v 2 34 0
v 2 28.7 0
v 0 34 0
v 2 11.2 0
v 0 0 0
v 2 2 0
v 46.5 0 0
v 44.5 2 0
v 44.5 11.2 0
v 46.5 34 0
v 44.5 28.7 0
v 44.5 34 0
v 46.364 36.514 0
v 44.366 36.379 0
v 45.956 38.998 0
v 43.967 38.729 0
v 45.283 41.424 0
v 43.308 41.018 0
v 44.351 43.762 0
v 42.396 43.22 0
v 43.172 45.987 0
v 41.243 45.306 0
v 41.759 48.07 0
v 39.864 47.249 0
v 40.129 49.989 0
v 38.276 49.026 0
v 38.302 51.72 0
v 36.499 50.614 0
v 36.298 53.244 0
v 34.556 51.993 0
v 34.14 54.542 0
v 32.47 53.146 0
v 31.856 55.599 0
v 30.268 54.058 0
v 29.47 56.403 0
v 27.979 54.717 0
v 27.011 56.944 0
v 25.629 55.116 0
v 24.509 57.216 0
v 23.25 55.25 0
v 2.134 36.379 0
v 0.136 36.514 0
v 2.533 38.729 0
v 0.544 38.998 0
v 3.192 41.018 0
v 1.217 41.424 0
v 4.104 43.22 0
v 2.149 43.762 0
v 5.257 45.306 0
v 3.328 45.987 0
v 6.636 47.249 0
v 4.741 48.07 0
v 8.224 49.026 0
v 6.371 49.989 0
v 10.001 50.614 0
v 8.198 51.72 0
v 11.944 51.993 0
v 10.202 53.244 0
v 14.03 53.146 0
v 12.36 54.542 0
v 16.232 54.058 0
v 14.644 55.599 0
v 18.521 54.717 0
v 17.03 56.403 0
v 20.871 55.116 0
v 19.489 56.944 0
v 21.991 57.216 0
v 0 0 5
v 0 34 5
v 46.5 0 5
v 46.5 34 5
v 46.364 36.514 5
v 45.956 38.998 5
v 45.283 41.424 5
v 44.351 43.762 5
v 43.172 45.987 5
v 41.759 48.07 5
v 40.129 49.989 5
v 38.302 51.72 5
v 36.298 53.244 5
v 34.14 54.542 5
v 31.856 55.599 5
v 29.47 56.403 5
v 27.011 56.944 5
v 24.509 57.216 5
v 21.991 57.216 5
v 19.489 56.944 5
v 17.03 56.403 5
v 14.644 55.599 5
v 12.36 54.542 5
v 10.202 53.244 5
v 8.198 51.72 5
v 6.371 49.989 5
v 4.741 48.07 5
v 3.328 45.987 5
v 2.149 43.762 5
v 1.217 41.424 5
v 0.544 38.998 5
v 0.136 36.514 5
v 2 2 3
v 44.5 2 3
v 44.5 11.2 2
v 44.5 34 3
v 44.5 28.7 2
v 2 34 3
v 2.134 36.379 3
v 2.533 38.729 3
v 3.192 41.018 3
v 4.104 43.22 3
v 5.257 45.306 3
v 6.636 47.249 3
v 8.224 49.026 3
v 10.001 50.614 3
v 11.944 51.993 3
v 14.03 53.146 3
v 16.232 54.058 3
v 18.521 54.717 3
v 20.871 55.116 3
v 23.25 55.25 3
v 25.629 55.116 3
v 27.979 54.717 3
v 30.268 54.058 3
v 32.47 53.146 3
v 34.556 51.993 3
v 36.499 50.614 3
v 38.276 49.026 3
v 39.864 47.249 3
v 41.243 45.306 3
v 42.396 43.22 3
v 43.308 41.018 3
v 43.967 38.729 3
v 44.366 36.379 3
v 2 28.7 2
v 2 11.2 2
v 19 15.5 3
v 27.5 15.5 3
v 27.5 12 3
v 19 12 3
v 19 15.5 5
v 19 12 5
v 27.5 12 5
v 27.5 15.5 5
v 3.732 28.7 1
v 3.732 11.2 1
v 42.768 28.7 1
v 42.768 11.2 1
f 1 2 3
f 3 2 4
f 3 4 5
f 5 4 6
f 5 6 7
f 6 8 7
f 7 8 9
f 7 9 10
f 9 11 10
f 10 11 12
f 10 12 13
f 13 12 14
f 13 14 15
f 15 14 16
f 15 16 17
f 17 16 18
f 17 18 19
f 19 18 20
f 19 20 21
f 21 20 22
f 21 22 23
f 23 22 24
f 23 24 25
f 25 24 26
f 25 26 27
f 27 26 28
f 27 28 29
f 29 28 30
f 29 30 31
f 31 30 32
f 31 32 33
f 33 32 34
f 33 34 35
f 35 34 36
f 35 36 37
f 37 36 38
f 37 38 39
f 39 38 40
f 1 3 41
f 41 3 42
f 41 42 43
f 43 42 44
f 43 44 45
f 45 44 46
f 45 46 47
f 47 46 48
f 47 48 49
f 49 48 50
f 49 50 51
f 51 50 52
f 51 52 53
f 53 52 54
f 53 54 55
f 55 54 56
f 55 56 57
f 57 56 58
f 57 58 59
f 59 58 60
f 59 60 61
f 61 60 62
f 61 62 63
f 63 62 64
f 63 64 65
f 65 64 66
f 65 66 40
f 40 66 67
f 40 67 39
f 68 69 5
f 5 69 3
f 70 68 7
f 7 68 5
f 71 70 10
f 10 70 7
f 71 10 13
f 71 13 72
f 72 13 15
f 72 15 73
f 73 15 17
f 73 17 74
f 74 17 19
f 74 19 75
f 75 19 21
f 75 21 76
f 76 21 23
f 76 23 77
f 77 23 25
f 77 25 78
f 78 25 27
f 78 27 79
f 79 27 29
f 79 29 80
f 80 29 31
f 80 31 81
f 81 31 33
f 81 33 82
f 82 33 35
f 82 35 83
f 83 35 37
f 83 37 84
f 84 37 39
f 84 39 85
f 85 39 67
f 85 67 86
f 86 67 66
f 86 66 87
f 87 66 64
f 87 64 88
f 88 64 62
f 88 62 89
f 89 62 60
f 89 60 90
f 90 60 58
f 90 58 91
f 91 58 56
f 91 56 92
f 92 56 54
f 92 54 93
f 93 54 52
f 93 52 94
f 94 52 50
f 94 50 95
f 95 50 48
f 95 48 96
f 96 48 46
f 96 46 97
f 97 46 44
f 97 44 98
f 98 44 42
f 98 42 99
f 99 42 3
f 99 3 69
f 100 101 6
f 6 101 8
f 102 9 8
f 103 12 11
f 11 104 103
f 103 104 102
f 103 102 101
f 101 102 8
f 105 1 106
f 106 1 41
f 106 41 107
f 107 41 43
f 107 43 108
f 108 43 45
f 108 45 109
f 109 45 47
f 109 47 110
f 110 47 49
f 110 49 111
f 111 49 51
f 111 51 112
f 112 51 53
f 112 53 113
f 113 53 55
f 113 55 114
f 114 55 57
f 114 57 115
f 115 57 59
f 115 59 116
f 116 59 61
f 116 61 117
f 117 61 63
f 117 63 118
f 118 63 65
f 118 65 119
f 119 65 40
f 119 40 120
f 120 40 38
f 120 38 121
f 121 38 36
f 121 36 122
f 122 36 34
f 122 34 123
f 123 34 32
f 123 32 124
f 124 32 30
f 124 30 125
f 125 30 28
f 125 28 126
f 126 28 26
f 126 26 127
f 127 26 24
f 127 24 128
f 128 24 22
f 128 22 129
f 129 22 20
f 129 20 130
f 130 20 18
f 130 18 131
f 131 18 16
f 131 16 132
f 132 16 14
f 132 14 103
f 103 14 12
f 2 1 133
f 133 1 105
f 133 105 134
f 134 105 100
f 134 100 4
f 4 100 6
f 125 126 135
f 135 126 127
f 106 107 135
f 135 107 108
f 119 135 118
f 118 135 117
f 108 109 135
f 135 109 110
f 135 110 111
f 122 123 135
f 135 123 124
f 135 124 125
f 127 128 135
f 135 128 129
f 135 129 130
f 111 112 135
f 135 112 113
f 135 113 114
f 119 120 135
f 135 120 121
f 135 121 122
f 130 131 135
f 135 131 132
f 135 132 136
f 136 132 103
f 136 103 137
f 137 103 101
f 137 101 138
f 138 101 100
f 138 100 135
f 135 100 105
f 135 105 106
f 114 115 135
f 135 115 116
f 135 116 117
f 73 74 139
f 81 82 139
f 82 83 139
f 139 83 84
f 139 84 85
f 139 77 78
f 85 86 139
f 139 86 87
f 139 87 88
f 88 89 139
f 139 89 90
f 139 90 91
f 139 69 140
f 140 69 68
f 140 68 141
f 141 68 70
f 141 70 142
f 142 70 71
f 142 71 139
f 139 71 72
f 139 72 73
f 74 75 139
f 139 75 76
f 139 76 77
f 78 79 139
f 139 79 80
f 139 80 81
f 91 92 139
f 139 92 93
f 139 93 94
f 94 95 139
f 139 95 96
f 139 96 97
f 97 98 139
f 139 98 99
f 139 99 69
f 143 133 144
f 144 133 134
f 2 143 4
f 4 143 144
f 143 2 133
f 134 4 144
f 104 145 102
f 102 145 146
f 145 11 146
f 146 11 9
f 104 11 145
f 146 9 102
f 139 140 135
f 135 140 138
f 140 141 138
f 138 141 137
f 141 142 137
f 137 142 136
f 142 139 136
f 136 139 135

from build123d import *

# Parameters (mm, degrees)
BOSS_EXTRUDE1_DEPTH = 3
BOSS_EXTRUDE2_DEPTH = 2
BOSS_EXTRUDE3_DEPTH = 17.5
SKETCH4_W           = 8.5
SKETCH4_H           = 3.5
CUT_EXTRUDE1_DEPTH  = 74.816072098


with BuildPart() as part:
    # Sketch1 → Boss-Extrude1 (new body)
    with BuildSketch(Plane.XY):
        with BuildLine():
            Line((0, 0), (46.5, 0))
            Line((46.5, 0), (46.5, 34))
            ThreePointArc((46.5, 34), (23.25, 57.25), (0, 34))
            Line((0, 34), (0, 0))
        make_face()
        with BuildLine():
            Line((2, 2), (2, 34))
            ThreePointArc((2, 34), (23.25, 55.25), (44.5, 34))
            Line((44.5, 34), (44.5, 2))
            Line((44.5, 2), (2, 2))
        make_face(mode=Mode.SUBTRACT)
    extrude(amount=BOSS_EXTRUDE1_DEPTH)

    # Sketch2 → Boss-Extrude2 (add)
    with BuildSketch(Plane.XY.offset(3)):
        with BuildLine():
            Line((0, 34), (0, 0))
            Line((0, 0), (46.5, 0))
            Line((46.5, 0), (46.5, 34))
            ThreePointArc((46.5, 34), (23.25, 57.25), (0, 34))
        make_face()
    extrude(amount=BOSS_EXTRUDE2_DEPTH)

    # Sketch3 → Boss-Extrude3 (add)
    with BuildSketch(Plane(origin=(0, 11.2, 0), x_dir=(1, 0, 0), z_dir=(0, 1, 0))):
        Polygon((2, -2), (3.732050808, -1), (2, 0), align=None)
    boss_extrude3 = extrude(amount=BOSS_EXTRUDE3_DEPTH)

    # Mirror1: Boss-Extrude3 across plane
    add(boss_extrude3.mirror(Plane.ZY.offset(-23.25)))

    # Sketch4 → Cut-Extrude1 (cut, through all)
    with BuildSketch(Plane(origin=(0, 0, 3), x_dir=(-1, 0, 0), z_dir=(0, 0, -1))):
        with Locations((-23.25, 13.75)):
            Rectangle(SKETCH4_W, SKETCH4_H)
    extrude(amount=-CUT_EXTRUDE1_DEPTH, mode=Mode.SUBTRACT)


solid = part.part
